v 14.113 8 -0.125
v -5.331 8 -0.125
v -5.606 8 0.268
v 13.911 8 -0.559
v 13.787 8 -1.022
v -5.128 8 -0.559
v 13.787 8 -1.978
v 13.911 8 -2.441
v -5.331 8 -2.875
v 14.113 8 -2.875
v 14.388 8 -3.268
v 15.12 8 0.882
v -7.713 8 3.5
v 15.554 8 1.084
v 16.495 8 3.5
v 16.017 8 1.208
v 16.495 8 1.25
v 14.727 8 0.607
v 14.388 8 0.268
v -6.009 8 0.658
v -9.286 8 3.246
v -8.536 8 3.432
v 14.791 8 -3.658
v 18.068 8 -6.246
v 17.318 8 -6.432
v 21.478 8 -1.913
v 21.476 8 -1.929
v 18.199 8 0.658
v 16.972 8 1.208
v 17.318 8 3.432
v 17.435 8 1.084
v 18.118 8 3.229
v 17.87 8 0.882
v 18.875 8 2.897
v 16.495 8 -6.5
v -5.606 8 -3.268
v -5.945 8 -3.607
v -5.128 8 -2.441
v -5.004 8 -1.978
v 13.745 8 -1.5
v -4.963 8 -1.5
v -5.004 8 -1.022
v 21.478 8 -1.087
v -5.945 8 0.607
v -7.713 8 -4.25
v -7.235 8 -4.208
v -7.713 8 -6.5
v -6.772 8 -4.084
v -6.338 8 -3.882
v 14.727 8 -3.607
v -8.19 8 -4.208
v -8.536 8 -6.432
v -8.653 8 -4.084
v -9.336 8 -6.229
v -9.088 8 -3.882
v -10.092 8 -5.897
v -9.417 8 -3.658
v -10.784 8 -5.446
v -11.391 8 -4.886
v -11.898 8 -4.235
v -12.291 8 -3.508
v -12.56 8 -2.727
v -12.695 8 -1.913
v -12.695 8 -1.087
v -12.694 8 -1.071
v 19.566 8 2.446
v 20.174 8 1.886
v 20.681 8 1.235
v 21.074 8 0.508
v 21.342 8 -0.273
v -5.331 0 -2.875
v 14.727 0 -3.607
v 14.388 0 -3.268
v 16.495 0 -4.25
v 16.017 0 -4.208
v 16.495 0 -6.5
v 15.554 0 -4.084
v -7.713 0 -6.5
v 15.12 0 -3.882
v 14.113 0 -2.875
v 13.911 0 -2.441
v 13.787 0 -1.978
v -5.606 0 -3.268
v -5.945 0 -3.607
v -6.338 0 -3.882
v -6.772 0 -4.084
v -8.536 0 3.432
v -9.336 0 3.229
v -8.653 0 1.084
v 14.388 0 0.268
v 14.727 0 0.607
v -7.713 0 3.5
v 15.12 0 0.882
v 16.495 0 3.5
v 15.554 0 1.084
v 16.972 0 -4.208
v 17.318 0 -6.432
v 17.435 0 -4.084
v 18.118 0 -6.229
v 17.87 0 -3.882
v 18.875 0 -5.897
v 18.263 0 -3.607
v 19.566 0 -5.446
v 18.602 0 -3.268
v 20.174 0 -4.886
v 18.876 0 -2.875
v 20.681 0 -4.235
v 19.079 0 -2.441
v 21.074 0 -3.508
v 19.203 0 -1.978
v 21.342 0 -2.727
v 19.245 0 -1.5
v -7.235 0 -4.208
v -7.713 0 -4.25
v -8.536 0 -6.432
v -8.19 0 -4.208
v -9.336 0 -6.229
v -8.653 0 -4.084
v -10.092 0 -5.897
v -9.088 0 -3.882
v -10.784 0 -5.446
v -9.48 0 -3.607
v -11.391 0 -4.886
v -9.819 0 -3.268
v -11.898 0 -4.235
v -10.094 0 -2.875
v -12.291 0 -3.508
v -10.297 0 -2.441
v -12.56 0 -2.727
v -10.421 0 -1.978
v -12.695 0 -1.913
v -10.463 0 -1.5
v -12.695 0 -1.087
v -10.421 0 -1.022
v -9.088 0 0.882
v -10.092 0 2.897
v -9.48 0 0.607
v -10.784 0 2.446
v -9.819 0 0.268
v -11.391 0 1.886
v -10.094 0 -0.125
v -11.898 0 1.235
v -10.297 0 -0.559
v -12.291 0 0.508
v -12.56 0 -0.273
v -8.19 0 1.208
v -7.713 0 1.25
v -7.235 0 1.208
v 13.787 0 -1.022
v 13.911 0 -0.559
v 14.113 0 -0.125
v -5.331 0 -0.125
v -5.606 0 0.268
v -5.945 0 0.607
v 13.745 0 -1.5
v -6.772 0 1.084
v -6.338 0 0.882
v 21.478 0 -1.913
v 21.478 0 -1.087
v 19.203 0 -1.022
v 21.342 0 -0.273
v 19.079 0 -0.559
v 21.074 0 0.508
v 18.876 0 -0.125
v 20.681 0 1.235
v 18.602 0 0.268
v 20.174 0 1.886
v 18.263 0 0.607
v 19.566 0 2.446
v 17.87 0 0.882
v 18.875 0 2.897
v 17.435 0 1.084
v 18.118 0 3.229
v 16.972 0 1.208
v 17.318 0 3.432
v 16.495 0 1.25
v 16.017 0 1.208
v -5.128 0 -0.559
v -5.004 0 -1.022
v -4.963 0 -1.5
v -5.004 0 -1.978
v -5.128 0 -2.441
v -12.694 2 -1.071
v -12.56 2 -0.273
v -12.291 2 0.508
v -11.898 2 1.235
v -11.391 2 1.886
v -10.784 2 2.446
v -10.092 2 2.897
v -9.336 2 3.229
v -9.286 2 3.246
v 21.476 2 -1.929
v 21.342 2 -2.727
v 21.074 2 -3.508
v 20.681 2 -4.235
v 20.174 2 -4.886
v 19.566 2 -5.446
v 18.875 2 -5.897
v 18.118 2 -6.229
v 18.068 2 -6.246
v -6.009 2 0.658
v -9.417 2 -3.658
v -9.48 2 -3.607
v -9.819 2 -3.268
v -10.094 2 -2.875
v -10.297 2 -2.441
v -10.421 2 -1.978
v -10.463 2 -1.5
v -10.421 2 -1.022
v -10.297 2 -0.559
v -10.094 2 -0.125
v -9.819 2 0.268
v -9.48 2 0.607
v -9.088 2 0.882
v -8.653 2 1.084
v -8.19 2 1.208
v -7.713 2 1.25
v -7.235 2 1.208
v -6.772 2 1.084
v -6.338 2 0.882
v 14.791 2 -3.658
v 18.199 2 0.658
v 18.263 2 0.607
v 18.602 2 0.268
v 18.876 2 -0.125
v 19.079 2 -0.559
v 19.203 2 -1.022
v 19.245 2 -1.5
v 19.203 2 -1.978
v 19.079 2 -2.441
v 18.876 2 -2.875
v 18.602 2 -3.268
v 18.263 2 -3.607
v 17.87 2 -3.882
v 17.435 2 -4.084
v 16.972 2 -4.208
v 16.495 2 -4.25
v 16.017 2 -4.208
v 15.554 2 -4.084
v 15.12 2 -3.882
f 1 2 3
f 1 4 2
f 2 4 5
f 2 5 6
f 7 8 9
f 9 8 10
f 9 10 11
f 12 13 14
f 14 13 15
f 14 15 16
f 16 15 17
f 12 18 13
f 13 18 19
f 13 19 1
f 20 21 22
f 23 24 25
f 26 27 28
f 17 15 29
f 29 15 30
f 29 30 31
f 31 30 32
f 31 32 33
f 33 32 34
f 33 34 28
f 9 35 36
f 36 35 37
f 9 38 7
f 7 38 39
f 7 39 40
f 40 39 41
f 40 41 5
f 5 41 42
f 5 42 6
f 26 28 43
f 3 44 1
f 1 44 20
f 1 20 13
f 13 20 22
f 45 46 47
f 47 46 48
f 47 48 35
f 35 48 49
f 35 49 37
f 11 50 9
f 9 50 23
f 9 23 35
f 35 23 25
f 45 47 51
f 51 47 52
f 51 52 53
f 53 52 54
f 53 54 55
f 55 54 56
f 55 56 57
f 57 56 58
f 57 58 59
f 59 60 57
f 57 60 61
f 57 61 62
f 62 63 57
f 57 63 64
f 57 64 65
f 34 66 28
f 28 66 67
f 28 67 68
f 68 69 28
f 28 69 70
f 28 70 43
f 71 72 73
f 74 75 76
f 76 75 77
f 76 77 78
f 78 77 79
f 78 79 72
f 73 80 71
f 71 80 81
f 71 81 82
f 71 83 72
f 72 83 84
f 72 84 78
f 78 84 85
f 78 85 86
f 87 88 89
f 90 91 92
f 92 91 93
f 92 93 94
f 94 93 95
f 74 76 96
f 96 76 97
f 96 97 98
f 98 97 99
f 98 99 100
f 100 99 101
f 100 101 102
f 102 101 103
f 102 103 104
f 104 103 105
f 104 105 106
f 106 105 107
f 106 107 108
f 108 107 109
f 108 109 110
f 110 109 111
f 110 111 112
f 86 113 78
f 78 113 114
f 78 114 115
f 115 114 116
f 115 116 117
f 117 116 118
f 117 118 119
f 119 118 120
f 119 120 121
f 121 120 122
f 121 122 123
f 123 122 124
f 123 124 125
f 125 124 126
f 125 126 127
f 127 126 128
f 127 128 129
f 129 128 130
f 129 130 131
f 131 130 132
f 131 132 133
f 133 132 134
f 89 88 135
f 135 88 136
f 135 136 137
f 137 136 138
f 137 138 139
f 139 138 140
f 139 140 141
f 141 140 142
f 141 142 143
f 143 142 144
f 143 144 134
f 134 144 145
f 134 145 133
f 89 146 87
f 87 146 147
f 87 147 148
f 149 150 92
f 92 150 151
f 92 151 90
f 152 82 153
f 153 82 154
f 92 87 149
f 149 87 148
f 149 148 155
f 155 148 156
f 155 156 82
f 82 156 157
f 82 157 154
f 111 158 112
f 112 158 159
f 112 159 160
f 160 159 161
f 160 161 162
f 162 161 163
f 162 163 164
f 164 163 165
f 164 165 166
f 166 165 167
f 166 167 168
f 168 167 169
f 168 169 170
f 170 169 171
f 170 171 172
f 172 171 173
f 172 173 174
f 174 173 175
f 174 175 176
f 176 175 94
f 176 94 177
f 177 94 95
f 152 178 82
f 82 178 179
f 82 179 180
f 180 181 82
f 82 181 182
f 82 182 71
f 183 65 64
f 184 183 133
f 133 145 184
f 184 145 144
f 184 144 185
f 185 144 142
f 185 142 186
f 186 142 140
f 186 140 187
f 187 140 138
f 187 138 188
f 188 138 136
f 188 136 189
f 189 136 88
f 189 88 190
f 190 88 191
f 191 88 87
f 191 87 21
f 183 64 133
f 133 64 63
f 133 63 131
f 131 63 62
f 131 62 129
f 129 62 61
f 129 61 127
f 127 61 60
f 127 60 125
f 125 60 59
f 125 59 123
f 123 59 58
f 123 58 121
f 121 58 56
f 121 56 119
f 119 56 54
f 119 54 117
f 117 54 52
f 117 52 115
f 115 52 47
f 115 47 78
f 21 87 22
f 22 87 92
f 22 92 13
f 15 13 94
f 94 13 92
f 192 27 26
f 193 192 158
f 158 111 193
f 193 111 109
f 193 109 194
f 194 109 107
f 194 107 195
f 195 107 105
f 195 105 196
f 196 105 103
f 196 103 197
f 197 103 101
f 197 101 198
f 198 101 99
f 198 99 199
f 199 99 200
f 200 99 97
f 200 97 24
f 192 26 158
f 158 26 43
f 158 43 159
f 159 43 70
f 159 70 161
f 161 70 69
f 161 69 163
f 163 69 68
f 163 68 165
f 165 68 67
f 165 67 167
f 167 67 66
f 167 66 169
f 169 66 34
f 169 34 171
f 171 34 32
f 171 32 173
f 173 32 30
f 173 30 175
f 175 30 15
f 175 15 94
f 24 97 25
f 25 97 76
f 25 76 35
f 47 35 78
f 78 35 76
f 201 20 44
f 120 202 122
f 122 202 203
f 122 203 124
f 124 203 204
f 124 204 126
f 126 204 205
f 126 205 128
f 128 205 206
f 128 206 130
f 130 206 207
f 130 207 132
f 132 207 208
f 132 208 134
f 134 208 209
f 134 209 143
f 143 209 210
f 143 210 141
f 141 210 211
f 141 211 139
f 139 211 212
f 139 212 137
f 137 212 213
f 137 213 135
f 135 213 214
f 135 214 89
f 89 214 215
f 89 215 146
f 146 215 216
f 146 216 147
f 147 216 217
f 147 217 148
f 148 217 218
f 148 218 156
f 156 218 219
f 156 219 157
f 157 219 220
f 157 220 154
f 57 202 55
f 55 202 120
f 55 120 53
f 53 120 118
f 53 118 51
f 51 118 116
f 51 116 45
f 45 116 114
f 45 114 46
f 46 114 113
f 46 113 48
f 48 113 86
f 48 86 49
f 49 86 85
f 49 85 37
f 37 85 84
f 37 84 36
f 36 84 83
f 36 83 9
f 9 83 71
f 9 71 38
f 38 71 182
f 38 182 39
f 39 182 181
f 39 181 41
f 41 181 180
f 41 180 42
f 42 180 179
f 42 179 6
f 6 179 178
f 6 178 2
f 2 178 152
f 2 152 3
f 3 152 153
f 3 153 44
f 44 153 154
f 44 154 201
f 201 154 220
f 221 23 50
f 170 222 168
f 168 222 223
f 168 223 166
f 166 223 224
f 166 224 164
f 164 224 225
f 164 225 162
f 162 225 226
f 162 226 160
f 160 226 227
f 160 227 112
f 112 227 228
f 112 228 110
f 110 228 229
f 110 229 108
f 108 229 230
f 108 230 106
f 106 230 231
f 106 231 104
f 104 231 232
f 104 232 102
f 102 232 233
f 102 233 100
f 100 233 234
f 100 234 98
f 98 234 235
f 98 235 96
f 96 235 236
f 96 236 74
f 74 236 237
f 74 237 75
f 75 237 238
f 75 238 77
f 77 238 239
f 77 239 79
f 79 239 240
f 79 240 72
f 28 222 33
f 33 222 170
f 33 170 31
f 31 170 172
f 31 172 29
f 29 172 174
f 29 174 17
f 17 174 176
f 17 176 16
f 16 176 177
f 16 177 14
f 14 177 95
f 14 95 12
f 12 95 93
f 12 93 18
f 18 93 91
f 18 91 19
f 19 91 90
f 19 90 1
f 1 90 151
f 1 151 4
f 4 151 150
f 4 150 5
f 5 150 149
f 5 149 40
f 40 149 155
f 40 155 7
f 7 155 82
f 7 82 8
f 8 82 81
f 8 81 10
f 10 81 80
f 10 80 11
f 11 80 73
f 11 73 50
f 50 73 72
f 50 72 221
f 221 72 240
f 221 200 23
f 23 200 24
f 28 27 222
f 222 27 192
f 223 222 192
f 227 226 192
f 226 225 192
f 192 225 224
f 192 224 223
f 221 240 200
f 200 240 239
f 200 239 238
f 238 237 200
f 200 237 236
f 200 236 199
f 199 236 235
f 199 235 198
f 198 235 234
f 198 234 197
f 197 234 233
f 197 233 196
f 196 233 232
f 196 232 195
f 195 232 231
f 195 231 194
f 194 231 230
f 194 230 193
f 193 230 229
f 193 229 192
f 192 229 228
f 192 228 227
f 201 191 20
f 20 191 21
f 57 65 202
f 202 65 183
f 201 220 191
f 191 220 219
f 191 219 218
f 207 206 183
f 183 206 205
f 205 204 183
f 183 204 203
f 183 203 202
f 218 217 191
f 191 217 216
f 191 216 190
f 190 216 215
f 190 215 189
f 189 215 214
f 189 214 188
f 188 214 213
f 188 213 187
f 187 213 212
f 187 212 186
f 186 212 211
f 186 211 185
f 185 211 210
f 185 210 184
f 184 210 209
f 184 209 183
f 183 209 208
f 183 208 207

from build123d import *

# Parameters (mm, degrees)
SKETCH1_R           = 2.75
BOSS_EXTRUDE1_DEPTH = 8
CUT_EXTRUDE1_DEPTH  = 6


with BuildPart() as part:
    # Sketch1 → Boss-Extrude1 (new body)
    with BuildSketch(Plane(origin=(0, 0, 0), x_dir=(1, 0, 0), z_dir=(0, 1, 0))):
        with BuildLine():
            Line((-7.712527276, 6.5), (16.494909594, 6.5))
            ThreePointArc((16.494909594, 6.5), (21.494909594, 1.5), (16.494909594, -3.5))
            Line((16.494909594, -3.5), (-7.712527276, -3.5))
            ThreePointArc((-7.712527276, -3.5), (-12.712527276, 1.5), (-7.712527276, 6.5))
        make_face()
        with Locations(Location((-7.712527276, 1.5, 0), (0, 0, 270))):
            Circle(SKETCH1_R, mode=Mode.SUBTRACT)
        with Locations(Location((16.494909594, 1.5, 0), (0, 0, 270))):
            Circle(SKETCH1_R, mode=Mode.SUBTRACT)
    extrude(amount=BOSS_EXTRUDE1_DEPTH)

    # Sketch2 → Cut-Extrude1 (cut)
    with BuildSketch(Plane(origin=(0, 8, 0), x_dir=(1, 0, 0), z_dir=(0, 1, 0))):
        Polygon((14.7908878, 3.658427605), (18.198931387, -0.658427605), (28.129781504, 7.181717223), (24.721737917, 11.498572433), align=None)
        Polygon((-6.008505483, -0.658427605), (-9.41654907, 3.658427605), (-19.347399186, -4.181717223), (-15.939355599, -8.498572433), align=None)
    extrude(amount=-CUT_EXTRUDE1_DEPTH, mode=Mode.SUBTRACT)


solid = part.part
